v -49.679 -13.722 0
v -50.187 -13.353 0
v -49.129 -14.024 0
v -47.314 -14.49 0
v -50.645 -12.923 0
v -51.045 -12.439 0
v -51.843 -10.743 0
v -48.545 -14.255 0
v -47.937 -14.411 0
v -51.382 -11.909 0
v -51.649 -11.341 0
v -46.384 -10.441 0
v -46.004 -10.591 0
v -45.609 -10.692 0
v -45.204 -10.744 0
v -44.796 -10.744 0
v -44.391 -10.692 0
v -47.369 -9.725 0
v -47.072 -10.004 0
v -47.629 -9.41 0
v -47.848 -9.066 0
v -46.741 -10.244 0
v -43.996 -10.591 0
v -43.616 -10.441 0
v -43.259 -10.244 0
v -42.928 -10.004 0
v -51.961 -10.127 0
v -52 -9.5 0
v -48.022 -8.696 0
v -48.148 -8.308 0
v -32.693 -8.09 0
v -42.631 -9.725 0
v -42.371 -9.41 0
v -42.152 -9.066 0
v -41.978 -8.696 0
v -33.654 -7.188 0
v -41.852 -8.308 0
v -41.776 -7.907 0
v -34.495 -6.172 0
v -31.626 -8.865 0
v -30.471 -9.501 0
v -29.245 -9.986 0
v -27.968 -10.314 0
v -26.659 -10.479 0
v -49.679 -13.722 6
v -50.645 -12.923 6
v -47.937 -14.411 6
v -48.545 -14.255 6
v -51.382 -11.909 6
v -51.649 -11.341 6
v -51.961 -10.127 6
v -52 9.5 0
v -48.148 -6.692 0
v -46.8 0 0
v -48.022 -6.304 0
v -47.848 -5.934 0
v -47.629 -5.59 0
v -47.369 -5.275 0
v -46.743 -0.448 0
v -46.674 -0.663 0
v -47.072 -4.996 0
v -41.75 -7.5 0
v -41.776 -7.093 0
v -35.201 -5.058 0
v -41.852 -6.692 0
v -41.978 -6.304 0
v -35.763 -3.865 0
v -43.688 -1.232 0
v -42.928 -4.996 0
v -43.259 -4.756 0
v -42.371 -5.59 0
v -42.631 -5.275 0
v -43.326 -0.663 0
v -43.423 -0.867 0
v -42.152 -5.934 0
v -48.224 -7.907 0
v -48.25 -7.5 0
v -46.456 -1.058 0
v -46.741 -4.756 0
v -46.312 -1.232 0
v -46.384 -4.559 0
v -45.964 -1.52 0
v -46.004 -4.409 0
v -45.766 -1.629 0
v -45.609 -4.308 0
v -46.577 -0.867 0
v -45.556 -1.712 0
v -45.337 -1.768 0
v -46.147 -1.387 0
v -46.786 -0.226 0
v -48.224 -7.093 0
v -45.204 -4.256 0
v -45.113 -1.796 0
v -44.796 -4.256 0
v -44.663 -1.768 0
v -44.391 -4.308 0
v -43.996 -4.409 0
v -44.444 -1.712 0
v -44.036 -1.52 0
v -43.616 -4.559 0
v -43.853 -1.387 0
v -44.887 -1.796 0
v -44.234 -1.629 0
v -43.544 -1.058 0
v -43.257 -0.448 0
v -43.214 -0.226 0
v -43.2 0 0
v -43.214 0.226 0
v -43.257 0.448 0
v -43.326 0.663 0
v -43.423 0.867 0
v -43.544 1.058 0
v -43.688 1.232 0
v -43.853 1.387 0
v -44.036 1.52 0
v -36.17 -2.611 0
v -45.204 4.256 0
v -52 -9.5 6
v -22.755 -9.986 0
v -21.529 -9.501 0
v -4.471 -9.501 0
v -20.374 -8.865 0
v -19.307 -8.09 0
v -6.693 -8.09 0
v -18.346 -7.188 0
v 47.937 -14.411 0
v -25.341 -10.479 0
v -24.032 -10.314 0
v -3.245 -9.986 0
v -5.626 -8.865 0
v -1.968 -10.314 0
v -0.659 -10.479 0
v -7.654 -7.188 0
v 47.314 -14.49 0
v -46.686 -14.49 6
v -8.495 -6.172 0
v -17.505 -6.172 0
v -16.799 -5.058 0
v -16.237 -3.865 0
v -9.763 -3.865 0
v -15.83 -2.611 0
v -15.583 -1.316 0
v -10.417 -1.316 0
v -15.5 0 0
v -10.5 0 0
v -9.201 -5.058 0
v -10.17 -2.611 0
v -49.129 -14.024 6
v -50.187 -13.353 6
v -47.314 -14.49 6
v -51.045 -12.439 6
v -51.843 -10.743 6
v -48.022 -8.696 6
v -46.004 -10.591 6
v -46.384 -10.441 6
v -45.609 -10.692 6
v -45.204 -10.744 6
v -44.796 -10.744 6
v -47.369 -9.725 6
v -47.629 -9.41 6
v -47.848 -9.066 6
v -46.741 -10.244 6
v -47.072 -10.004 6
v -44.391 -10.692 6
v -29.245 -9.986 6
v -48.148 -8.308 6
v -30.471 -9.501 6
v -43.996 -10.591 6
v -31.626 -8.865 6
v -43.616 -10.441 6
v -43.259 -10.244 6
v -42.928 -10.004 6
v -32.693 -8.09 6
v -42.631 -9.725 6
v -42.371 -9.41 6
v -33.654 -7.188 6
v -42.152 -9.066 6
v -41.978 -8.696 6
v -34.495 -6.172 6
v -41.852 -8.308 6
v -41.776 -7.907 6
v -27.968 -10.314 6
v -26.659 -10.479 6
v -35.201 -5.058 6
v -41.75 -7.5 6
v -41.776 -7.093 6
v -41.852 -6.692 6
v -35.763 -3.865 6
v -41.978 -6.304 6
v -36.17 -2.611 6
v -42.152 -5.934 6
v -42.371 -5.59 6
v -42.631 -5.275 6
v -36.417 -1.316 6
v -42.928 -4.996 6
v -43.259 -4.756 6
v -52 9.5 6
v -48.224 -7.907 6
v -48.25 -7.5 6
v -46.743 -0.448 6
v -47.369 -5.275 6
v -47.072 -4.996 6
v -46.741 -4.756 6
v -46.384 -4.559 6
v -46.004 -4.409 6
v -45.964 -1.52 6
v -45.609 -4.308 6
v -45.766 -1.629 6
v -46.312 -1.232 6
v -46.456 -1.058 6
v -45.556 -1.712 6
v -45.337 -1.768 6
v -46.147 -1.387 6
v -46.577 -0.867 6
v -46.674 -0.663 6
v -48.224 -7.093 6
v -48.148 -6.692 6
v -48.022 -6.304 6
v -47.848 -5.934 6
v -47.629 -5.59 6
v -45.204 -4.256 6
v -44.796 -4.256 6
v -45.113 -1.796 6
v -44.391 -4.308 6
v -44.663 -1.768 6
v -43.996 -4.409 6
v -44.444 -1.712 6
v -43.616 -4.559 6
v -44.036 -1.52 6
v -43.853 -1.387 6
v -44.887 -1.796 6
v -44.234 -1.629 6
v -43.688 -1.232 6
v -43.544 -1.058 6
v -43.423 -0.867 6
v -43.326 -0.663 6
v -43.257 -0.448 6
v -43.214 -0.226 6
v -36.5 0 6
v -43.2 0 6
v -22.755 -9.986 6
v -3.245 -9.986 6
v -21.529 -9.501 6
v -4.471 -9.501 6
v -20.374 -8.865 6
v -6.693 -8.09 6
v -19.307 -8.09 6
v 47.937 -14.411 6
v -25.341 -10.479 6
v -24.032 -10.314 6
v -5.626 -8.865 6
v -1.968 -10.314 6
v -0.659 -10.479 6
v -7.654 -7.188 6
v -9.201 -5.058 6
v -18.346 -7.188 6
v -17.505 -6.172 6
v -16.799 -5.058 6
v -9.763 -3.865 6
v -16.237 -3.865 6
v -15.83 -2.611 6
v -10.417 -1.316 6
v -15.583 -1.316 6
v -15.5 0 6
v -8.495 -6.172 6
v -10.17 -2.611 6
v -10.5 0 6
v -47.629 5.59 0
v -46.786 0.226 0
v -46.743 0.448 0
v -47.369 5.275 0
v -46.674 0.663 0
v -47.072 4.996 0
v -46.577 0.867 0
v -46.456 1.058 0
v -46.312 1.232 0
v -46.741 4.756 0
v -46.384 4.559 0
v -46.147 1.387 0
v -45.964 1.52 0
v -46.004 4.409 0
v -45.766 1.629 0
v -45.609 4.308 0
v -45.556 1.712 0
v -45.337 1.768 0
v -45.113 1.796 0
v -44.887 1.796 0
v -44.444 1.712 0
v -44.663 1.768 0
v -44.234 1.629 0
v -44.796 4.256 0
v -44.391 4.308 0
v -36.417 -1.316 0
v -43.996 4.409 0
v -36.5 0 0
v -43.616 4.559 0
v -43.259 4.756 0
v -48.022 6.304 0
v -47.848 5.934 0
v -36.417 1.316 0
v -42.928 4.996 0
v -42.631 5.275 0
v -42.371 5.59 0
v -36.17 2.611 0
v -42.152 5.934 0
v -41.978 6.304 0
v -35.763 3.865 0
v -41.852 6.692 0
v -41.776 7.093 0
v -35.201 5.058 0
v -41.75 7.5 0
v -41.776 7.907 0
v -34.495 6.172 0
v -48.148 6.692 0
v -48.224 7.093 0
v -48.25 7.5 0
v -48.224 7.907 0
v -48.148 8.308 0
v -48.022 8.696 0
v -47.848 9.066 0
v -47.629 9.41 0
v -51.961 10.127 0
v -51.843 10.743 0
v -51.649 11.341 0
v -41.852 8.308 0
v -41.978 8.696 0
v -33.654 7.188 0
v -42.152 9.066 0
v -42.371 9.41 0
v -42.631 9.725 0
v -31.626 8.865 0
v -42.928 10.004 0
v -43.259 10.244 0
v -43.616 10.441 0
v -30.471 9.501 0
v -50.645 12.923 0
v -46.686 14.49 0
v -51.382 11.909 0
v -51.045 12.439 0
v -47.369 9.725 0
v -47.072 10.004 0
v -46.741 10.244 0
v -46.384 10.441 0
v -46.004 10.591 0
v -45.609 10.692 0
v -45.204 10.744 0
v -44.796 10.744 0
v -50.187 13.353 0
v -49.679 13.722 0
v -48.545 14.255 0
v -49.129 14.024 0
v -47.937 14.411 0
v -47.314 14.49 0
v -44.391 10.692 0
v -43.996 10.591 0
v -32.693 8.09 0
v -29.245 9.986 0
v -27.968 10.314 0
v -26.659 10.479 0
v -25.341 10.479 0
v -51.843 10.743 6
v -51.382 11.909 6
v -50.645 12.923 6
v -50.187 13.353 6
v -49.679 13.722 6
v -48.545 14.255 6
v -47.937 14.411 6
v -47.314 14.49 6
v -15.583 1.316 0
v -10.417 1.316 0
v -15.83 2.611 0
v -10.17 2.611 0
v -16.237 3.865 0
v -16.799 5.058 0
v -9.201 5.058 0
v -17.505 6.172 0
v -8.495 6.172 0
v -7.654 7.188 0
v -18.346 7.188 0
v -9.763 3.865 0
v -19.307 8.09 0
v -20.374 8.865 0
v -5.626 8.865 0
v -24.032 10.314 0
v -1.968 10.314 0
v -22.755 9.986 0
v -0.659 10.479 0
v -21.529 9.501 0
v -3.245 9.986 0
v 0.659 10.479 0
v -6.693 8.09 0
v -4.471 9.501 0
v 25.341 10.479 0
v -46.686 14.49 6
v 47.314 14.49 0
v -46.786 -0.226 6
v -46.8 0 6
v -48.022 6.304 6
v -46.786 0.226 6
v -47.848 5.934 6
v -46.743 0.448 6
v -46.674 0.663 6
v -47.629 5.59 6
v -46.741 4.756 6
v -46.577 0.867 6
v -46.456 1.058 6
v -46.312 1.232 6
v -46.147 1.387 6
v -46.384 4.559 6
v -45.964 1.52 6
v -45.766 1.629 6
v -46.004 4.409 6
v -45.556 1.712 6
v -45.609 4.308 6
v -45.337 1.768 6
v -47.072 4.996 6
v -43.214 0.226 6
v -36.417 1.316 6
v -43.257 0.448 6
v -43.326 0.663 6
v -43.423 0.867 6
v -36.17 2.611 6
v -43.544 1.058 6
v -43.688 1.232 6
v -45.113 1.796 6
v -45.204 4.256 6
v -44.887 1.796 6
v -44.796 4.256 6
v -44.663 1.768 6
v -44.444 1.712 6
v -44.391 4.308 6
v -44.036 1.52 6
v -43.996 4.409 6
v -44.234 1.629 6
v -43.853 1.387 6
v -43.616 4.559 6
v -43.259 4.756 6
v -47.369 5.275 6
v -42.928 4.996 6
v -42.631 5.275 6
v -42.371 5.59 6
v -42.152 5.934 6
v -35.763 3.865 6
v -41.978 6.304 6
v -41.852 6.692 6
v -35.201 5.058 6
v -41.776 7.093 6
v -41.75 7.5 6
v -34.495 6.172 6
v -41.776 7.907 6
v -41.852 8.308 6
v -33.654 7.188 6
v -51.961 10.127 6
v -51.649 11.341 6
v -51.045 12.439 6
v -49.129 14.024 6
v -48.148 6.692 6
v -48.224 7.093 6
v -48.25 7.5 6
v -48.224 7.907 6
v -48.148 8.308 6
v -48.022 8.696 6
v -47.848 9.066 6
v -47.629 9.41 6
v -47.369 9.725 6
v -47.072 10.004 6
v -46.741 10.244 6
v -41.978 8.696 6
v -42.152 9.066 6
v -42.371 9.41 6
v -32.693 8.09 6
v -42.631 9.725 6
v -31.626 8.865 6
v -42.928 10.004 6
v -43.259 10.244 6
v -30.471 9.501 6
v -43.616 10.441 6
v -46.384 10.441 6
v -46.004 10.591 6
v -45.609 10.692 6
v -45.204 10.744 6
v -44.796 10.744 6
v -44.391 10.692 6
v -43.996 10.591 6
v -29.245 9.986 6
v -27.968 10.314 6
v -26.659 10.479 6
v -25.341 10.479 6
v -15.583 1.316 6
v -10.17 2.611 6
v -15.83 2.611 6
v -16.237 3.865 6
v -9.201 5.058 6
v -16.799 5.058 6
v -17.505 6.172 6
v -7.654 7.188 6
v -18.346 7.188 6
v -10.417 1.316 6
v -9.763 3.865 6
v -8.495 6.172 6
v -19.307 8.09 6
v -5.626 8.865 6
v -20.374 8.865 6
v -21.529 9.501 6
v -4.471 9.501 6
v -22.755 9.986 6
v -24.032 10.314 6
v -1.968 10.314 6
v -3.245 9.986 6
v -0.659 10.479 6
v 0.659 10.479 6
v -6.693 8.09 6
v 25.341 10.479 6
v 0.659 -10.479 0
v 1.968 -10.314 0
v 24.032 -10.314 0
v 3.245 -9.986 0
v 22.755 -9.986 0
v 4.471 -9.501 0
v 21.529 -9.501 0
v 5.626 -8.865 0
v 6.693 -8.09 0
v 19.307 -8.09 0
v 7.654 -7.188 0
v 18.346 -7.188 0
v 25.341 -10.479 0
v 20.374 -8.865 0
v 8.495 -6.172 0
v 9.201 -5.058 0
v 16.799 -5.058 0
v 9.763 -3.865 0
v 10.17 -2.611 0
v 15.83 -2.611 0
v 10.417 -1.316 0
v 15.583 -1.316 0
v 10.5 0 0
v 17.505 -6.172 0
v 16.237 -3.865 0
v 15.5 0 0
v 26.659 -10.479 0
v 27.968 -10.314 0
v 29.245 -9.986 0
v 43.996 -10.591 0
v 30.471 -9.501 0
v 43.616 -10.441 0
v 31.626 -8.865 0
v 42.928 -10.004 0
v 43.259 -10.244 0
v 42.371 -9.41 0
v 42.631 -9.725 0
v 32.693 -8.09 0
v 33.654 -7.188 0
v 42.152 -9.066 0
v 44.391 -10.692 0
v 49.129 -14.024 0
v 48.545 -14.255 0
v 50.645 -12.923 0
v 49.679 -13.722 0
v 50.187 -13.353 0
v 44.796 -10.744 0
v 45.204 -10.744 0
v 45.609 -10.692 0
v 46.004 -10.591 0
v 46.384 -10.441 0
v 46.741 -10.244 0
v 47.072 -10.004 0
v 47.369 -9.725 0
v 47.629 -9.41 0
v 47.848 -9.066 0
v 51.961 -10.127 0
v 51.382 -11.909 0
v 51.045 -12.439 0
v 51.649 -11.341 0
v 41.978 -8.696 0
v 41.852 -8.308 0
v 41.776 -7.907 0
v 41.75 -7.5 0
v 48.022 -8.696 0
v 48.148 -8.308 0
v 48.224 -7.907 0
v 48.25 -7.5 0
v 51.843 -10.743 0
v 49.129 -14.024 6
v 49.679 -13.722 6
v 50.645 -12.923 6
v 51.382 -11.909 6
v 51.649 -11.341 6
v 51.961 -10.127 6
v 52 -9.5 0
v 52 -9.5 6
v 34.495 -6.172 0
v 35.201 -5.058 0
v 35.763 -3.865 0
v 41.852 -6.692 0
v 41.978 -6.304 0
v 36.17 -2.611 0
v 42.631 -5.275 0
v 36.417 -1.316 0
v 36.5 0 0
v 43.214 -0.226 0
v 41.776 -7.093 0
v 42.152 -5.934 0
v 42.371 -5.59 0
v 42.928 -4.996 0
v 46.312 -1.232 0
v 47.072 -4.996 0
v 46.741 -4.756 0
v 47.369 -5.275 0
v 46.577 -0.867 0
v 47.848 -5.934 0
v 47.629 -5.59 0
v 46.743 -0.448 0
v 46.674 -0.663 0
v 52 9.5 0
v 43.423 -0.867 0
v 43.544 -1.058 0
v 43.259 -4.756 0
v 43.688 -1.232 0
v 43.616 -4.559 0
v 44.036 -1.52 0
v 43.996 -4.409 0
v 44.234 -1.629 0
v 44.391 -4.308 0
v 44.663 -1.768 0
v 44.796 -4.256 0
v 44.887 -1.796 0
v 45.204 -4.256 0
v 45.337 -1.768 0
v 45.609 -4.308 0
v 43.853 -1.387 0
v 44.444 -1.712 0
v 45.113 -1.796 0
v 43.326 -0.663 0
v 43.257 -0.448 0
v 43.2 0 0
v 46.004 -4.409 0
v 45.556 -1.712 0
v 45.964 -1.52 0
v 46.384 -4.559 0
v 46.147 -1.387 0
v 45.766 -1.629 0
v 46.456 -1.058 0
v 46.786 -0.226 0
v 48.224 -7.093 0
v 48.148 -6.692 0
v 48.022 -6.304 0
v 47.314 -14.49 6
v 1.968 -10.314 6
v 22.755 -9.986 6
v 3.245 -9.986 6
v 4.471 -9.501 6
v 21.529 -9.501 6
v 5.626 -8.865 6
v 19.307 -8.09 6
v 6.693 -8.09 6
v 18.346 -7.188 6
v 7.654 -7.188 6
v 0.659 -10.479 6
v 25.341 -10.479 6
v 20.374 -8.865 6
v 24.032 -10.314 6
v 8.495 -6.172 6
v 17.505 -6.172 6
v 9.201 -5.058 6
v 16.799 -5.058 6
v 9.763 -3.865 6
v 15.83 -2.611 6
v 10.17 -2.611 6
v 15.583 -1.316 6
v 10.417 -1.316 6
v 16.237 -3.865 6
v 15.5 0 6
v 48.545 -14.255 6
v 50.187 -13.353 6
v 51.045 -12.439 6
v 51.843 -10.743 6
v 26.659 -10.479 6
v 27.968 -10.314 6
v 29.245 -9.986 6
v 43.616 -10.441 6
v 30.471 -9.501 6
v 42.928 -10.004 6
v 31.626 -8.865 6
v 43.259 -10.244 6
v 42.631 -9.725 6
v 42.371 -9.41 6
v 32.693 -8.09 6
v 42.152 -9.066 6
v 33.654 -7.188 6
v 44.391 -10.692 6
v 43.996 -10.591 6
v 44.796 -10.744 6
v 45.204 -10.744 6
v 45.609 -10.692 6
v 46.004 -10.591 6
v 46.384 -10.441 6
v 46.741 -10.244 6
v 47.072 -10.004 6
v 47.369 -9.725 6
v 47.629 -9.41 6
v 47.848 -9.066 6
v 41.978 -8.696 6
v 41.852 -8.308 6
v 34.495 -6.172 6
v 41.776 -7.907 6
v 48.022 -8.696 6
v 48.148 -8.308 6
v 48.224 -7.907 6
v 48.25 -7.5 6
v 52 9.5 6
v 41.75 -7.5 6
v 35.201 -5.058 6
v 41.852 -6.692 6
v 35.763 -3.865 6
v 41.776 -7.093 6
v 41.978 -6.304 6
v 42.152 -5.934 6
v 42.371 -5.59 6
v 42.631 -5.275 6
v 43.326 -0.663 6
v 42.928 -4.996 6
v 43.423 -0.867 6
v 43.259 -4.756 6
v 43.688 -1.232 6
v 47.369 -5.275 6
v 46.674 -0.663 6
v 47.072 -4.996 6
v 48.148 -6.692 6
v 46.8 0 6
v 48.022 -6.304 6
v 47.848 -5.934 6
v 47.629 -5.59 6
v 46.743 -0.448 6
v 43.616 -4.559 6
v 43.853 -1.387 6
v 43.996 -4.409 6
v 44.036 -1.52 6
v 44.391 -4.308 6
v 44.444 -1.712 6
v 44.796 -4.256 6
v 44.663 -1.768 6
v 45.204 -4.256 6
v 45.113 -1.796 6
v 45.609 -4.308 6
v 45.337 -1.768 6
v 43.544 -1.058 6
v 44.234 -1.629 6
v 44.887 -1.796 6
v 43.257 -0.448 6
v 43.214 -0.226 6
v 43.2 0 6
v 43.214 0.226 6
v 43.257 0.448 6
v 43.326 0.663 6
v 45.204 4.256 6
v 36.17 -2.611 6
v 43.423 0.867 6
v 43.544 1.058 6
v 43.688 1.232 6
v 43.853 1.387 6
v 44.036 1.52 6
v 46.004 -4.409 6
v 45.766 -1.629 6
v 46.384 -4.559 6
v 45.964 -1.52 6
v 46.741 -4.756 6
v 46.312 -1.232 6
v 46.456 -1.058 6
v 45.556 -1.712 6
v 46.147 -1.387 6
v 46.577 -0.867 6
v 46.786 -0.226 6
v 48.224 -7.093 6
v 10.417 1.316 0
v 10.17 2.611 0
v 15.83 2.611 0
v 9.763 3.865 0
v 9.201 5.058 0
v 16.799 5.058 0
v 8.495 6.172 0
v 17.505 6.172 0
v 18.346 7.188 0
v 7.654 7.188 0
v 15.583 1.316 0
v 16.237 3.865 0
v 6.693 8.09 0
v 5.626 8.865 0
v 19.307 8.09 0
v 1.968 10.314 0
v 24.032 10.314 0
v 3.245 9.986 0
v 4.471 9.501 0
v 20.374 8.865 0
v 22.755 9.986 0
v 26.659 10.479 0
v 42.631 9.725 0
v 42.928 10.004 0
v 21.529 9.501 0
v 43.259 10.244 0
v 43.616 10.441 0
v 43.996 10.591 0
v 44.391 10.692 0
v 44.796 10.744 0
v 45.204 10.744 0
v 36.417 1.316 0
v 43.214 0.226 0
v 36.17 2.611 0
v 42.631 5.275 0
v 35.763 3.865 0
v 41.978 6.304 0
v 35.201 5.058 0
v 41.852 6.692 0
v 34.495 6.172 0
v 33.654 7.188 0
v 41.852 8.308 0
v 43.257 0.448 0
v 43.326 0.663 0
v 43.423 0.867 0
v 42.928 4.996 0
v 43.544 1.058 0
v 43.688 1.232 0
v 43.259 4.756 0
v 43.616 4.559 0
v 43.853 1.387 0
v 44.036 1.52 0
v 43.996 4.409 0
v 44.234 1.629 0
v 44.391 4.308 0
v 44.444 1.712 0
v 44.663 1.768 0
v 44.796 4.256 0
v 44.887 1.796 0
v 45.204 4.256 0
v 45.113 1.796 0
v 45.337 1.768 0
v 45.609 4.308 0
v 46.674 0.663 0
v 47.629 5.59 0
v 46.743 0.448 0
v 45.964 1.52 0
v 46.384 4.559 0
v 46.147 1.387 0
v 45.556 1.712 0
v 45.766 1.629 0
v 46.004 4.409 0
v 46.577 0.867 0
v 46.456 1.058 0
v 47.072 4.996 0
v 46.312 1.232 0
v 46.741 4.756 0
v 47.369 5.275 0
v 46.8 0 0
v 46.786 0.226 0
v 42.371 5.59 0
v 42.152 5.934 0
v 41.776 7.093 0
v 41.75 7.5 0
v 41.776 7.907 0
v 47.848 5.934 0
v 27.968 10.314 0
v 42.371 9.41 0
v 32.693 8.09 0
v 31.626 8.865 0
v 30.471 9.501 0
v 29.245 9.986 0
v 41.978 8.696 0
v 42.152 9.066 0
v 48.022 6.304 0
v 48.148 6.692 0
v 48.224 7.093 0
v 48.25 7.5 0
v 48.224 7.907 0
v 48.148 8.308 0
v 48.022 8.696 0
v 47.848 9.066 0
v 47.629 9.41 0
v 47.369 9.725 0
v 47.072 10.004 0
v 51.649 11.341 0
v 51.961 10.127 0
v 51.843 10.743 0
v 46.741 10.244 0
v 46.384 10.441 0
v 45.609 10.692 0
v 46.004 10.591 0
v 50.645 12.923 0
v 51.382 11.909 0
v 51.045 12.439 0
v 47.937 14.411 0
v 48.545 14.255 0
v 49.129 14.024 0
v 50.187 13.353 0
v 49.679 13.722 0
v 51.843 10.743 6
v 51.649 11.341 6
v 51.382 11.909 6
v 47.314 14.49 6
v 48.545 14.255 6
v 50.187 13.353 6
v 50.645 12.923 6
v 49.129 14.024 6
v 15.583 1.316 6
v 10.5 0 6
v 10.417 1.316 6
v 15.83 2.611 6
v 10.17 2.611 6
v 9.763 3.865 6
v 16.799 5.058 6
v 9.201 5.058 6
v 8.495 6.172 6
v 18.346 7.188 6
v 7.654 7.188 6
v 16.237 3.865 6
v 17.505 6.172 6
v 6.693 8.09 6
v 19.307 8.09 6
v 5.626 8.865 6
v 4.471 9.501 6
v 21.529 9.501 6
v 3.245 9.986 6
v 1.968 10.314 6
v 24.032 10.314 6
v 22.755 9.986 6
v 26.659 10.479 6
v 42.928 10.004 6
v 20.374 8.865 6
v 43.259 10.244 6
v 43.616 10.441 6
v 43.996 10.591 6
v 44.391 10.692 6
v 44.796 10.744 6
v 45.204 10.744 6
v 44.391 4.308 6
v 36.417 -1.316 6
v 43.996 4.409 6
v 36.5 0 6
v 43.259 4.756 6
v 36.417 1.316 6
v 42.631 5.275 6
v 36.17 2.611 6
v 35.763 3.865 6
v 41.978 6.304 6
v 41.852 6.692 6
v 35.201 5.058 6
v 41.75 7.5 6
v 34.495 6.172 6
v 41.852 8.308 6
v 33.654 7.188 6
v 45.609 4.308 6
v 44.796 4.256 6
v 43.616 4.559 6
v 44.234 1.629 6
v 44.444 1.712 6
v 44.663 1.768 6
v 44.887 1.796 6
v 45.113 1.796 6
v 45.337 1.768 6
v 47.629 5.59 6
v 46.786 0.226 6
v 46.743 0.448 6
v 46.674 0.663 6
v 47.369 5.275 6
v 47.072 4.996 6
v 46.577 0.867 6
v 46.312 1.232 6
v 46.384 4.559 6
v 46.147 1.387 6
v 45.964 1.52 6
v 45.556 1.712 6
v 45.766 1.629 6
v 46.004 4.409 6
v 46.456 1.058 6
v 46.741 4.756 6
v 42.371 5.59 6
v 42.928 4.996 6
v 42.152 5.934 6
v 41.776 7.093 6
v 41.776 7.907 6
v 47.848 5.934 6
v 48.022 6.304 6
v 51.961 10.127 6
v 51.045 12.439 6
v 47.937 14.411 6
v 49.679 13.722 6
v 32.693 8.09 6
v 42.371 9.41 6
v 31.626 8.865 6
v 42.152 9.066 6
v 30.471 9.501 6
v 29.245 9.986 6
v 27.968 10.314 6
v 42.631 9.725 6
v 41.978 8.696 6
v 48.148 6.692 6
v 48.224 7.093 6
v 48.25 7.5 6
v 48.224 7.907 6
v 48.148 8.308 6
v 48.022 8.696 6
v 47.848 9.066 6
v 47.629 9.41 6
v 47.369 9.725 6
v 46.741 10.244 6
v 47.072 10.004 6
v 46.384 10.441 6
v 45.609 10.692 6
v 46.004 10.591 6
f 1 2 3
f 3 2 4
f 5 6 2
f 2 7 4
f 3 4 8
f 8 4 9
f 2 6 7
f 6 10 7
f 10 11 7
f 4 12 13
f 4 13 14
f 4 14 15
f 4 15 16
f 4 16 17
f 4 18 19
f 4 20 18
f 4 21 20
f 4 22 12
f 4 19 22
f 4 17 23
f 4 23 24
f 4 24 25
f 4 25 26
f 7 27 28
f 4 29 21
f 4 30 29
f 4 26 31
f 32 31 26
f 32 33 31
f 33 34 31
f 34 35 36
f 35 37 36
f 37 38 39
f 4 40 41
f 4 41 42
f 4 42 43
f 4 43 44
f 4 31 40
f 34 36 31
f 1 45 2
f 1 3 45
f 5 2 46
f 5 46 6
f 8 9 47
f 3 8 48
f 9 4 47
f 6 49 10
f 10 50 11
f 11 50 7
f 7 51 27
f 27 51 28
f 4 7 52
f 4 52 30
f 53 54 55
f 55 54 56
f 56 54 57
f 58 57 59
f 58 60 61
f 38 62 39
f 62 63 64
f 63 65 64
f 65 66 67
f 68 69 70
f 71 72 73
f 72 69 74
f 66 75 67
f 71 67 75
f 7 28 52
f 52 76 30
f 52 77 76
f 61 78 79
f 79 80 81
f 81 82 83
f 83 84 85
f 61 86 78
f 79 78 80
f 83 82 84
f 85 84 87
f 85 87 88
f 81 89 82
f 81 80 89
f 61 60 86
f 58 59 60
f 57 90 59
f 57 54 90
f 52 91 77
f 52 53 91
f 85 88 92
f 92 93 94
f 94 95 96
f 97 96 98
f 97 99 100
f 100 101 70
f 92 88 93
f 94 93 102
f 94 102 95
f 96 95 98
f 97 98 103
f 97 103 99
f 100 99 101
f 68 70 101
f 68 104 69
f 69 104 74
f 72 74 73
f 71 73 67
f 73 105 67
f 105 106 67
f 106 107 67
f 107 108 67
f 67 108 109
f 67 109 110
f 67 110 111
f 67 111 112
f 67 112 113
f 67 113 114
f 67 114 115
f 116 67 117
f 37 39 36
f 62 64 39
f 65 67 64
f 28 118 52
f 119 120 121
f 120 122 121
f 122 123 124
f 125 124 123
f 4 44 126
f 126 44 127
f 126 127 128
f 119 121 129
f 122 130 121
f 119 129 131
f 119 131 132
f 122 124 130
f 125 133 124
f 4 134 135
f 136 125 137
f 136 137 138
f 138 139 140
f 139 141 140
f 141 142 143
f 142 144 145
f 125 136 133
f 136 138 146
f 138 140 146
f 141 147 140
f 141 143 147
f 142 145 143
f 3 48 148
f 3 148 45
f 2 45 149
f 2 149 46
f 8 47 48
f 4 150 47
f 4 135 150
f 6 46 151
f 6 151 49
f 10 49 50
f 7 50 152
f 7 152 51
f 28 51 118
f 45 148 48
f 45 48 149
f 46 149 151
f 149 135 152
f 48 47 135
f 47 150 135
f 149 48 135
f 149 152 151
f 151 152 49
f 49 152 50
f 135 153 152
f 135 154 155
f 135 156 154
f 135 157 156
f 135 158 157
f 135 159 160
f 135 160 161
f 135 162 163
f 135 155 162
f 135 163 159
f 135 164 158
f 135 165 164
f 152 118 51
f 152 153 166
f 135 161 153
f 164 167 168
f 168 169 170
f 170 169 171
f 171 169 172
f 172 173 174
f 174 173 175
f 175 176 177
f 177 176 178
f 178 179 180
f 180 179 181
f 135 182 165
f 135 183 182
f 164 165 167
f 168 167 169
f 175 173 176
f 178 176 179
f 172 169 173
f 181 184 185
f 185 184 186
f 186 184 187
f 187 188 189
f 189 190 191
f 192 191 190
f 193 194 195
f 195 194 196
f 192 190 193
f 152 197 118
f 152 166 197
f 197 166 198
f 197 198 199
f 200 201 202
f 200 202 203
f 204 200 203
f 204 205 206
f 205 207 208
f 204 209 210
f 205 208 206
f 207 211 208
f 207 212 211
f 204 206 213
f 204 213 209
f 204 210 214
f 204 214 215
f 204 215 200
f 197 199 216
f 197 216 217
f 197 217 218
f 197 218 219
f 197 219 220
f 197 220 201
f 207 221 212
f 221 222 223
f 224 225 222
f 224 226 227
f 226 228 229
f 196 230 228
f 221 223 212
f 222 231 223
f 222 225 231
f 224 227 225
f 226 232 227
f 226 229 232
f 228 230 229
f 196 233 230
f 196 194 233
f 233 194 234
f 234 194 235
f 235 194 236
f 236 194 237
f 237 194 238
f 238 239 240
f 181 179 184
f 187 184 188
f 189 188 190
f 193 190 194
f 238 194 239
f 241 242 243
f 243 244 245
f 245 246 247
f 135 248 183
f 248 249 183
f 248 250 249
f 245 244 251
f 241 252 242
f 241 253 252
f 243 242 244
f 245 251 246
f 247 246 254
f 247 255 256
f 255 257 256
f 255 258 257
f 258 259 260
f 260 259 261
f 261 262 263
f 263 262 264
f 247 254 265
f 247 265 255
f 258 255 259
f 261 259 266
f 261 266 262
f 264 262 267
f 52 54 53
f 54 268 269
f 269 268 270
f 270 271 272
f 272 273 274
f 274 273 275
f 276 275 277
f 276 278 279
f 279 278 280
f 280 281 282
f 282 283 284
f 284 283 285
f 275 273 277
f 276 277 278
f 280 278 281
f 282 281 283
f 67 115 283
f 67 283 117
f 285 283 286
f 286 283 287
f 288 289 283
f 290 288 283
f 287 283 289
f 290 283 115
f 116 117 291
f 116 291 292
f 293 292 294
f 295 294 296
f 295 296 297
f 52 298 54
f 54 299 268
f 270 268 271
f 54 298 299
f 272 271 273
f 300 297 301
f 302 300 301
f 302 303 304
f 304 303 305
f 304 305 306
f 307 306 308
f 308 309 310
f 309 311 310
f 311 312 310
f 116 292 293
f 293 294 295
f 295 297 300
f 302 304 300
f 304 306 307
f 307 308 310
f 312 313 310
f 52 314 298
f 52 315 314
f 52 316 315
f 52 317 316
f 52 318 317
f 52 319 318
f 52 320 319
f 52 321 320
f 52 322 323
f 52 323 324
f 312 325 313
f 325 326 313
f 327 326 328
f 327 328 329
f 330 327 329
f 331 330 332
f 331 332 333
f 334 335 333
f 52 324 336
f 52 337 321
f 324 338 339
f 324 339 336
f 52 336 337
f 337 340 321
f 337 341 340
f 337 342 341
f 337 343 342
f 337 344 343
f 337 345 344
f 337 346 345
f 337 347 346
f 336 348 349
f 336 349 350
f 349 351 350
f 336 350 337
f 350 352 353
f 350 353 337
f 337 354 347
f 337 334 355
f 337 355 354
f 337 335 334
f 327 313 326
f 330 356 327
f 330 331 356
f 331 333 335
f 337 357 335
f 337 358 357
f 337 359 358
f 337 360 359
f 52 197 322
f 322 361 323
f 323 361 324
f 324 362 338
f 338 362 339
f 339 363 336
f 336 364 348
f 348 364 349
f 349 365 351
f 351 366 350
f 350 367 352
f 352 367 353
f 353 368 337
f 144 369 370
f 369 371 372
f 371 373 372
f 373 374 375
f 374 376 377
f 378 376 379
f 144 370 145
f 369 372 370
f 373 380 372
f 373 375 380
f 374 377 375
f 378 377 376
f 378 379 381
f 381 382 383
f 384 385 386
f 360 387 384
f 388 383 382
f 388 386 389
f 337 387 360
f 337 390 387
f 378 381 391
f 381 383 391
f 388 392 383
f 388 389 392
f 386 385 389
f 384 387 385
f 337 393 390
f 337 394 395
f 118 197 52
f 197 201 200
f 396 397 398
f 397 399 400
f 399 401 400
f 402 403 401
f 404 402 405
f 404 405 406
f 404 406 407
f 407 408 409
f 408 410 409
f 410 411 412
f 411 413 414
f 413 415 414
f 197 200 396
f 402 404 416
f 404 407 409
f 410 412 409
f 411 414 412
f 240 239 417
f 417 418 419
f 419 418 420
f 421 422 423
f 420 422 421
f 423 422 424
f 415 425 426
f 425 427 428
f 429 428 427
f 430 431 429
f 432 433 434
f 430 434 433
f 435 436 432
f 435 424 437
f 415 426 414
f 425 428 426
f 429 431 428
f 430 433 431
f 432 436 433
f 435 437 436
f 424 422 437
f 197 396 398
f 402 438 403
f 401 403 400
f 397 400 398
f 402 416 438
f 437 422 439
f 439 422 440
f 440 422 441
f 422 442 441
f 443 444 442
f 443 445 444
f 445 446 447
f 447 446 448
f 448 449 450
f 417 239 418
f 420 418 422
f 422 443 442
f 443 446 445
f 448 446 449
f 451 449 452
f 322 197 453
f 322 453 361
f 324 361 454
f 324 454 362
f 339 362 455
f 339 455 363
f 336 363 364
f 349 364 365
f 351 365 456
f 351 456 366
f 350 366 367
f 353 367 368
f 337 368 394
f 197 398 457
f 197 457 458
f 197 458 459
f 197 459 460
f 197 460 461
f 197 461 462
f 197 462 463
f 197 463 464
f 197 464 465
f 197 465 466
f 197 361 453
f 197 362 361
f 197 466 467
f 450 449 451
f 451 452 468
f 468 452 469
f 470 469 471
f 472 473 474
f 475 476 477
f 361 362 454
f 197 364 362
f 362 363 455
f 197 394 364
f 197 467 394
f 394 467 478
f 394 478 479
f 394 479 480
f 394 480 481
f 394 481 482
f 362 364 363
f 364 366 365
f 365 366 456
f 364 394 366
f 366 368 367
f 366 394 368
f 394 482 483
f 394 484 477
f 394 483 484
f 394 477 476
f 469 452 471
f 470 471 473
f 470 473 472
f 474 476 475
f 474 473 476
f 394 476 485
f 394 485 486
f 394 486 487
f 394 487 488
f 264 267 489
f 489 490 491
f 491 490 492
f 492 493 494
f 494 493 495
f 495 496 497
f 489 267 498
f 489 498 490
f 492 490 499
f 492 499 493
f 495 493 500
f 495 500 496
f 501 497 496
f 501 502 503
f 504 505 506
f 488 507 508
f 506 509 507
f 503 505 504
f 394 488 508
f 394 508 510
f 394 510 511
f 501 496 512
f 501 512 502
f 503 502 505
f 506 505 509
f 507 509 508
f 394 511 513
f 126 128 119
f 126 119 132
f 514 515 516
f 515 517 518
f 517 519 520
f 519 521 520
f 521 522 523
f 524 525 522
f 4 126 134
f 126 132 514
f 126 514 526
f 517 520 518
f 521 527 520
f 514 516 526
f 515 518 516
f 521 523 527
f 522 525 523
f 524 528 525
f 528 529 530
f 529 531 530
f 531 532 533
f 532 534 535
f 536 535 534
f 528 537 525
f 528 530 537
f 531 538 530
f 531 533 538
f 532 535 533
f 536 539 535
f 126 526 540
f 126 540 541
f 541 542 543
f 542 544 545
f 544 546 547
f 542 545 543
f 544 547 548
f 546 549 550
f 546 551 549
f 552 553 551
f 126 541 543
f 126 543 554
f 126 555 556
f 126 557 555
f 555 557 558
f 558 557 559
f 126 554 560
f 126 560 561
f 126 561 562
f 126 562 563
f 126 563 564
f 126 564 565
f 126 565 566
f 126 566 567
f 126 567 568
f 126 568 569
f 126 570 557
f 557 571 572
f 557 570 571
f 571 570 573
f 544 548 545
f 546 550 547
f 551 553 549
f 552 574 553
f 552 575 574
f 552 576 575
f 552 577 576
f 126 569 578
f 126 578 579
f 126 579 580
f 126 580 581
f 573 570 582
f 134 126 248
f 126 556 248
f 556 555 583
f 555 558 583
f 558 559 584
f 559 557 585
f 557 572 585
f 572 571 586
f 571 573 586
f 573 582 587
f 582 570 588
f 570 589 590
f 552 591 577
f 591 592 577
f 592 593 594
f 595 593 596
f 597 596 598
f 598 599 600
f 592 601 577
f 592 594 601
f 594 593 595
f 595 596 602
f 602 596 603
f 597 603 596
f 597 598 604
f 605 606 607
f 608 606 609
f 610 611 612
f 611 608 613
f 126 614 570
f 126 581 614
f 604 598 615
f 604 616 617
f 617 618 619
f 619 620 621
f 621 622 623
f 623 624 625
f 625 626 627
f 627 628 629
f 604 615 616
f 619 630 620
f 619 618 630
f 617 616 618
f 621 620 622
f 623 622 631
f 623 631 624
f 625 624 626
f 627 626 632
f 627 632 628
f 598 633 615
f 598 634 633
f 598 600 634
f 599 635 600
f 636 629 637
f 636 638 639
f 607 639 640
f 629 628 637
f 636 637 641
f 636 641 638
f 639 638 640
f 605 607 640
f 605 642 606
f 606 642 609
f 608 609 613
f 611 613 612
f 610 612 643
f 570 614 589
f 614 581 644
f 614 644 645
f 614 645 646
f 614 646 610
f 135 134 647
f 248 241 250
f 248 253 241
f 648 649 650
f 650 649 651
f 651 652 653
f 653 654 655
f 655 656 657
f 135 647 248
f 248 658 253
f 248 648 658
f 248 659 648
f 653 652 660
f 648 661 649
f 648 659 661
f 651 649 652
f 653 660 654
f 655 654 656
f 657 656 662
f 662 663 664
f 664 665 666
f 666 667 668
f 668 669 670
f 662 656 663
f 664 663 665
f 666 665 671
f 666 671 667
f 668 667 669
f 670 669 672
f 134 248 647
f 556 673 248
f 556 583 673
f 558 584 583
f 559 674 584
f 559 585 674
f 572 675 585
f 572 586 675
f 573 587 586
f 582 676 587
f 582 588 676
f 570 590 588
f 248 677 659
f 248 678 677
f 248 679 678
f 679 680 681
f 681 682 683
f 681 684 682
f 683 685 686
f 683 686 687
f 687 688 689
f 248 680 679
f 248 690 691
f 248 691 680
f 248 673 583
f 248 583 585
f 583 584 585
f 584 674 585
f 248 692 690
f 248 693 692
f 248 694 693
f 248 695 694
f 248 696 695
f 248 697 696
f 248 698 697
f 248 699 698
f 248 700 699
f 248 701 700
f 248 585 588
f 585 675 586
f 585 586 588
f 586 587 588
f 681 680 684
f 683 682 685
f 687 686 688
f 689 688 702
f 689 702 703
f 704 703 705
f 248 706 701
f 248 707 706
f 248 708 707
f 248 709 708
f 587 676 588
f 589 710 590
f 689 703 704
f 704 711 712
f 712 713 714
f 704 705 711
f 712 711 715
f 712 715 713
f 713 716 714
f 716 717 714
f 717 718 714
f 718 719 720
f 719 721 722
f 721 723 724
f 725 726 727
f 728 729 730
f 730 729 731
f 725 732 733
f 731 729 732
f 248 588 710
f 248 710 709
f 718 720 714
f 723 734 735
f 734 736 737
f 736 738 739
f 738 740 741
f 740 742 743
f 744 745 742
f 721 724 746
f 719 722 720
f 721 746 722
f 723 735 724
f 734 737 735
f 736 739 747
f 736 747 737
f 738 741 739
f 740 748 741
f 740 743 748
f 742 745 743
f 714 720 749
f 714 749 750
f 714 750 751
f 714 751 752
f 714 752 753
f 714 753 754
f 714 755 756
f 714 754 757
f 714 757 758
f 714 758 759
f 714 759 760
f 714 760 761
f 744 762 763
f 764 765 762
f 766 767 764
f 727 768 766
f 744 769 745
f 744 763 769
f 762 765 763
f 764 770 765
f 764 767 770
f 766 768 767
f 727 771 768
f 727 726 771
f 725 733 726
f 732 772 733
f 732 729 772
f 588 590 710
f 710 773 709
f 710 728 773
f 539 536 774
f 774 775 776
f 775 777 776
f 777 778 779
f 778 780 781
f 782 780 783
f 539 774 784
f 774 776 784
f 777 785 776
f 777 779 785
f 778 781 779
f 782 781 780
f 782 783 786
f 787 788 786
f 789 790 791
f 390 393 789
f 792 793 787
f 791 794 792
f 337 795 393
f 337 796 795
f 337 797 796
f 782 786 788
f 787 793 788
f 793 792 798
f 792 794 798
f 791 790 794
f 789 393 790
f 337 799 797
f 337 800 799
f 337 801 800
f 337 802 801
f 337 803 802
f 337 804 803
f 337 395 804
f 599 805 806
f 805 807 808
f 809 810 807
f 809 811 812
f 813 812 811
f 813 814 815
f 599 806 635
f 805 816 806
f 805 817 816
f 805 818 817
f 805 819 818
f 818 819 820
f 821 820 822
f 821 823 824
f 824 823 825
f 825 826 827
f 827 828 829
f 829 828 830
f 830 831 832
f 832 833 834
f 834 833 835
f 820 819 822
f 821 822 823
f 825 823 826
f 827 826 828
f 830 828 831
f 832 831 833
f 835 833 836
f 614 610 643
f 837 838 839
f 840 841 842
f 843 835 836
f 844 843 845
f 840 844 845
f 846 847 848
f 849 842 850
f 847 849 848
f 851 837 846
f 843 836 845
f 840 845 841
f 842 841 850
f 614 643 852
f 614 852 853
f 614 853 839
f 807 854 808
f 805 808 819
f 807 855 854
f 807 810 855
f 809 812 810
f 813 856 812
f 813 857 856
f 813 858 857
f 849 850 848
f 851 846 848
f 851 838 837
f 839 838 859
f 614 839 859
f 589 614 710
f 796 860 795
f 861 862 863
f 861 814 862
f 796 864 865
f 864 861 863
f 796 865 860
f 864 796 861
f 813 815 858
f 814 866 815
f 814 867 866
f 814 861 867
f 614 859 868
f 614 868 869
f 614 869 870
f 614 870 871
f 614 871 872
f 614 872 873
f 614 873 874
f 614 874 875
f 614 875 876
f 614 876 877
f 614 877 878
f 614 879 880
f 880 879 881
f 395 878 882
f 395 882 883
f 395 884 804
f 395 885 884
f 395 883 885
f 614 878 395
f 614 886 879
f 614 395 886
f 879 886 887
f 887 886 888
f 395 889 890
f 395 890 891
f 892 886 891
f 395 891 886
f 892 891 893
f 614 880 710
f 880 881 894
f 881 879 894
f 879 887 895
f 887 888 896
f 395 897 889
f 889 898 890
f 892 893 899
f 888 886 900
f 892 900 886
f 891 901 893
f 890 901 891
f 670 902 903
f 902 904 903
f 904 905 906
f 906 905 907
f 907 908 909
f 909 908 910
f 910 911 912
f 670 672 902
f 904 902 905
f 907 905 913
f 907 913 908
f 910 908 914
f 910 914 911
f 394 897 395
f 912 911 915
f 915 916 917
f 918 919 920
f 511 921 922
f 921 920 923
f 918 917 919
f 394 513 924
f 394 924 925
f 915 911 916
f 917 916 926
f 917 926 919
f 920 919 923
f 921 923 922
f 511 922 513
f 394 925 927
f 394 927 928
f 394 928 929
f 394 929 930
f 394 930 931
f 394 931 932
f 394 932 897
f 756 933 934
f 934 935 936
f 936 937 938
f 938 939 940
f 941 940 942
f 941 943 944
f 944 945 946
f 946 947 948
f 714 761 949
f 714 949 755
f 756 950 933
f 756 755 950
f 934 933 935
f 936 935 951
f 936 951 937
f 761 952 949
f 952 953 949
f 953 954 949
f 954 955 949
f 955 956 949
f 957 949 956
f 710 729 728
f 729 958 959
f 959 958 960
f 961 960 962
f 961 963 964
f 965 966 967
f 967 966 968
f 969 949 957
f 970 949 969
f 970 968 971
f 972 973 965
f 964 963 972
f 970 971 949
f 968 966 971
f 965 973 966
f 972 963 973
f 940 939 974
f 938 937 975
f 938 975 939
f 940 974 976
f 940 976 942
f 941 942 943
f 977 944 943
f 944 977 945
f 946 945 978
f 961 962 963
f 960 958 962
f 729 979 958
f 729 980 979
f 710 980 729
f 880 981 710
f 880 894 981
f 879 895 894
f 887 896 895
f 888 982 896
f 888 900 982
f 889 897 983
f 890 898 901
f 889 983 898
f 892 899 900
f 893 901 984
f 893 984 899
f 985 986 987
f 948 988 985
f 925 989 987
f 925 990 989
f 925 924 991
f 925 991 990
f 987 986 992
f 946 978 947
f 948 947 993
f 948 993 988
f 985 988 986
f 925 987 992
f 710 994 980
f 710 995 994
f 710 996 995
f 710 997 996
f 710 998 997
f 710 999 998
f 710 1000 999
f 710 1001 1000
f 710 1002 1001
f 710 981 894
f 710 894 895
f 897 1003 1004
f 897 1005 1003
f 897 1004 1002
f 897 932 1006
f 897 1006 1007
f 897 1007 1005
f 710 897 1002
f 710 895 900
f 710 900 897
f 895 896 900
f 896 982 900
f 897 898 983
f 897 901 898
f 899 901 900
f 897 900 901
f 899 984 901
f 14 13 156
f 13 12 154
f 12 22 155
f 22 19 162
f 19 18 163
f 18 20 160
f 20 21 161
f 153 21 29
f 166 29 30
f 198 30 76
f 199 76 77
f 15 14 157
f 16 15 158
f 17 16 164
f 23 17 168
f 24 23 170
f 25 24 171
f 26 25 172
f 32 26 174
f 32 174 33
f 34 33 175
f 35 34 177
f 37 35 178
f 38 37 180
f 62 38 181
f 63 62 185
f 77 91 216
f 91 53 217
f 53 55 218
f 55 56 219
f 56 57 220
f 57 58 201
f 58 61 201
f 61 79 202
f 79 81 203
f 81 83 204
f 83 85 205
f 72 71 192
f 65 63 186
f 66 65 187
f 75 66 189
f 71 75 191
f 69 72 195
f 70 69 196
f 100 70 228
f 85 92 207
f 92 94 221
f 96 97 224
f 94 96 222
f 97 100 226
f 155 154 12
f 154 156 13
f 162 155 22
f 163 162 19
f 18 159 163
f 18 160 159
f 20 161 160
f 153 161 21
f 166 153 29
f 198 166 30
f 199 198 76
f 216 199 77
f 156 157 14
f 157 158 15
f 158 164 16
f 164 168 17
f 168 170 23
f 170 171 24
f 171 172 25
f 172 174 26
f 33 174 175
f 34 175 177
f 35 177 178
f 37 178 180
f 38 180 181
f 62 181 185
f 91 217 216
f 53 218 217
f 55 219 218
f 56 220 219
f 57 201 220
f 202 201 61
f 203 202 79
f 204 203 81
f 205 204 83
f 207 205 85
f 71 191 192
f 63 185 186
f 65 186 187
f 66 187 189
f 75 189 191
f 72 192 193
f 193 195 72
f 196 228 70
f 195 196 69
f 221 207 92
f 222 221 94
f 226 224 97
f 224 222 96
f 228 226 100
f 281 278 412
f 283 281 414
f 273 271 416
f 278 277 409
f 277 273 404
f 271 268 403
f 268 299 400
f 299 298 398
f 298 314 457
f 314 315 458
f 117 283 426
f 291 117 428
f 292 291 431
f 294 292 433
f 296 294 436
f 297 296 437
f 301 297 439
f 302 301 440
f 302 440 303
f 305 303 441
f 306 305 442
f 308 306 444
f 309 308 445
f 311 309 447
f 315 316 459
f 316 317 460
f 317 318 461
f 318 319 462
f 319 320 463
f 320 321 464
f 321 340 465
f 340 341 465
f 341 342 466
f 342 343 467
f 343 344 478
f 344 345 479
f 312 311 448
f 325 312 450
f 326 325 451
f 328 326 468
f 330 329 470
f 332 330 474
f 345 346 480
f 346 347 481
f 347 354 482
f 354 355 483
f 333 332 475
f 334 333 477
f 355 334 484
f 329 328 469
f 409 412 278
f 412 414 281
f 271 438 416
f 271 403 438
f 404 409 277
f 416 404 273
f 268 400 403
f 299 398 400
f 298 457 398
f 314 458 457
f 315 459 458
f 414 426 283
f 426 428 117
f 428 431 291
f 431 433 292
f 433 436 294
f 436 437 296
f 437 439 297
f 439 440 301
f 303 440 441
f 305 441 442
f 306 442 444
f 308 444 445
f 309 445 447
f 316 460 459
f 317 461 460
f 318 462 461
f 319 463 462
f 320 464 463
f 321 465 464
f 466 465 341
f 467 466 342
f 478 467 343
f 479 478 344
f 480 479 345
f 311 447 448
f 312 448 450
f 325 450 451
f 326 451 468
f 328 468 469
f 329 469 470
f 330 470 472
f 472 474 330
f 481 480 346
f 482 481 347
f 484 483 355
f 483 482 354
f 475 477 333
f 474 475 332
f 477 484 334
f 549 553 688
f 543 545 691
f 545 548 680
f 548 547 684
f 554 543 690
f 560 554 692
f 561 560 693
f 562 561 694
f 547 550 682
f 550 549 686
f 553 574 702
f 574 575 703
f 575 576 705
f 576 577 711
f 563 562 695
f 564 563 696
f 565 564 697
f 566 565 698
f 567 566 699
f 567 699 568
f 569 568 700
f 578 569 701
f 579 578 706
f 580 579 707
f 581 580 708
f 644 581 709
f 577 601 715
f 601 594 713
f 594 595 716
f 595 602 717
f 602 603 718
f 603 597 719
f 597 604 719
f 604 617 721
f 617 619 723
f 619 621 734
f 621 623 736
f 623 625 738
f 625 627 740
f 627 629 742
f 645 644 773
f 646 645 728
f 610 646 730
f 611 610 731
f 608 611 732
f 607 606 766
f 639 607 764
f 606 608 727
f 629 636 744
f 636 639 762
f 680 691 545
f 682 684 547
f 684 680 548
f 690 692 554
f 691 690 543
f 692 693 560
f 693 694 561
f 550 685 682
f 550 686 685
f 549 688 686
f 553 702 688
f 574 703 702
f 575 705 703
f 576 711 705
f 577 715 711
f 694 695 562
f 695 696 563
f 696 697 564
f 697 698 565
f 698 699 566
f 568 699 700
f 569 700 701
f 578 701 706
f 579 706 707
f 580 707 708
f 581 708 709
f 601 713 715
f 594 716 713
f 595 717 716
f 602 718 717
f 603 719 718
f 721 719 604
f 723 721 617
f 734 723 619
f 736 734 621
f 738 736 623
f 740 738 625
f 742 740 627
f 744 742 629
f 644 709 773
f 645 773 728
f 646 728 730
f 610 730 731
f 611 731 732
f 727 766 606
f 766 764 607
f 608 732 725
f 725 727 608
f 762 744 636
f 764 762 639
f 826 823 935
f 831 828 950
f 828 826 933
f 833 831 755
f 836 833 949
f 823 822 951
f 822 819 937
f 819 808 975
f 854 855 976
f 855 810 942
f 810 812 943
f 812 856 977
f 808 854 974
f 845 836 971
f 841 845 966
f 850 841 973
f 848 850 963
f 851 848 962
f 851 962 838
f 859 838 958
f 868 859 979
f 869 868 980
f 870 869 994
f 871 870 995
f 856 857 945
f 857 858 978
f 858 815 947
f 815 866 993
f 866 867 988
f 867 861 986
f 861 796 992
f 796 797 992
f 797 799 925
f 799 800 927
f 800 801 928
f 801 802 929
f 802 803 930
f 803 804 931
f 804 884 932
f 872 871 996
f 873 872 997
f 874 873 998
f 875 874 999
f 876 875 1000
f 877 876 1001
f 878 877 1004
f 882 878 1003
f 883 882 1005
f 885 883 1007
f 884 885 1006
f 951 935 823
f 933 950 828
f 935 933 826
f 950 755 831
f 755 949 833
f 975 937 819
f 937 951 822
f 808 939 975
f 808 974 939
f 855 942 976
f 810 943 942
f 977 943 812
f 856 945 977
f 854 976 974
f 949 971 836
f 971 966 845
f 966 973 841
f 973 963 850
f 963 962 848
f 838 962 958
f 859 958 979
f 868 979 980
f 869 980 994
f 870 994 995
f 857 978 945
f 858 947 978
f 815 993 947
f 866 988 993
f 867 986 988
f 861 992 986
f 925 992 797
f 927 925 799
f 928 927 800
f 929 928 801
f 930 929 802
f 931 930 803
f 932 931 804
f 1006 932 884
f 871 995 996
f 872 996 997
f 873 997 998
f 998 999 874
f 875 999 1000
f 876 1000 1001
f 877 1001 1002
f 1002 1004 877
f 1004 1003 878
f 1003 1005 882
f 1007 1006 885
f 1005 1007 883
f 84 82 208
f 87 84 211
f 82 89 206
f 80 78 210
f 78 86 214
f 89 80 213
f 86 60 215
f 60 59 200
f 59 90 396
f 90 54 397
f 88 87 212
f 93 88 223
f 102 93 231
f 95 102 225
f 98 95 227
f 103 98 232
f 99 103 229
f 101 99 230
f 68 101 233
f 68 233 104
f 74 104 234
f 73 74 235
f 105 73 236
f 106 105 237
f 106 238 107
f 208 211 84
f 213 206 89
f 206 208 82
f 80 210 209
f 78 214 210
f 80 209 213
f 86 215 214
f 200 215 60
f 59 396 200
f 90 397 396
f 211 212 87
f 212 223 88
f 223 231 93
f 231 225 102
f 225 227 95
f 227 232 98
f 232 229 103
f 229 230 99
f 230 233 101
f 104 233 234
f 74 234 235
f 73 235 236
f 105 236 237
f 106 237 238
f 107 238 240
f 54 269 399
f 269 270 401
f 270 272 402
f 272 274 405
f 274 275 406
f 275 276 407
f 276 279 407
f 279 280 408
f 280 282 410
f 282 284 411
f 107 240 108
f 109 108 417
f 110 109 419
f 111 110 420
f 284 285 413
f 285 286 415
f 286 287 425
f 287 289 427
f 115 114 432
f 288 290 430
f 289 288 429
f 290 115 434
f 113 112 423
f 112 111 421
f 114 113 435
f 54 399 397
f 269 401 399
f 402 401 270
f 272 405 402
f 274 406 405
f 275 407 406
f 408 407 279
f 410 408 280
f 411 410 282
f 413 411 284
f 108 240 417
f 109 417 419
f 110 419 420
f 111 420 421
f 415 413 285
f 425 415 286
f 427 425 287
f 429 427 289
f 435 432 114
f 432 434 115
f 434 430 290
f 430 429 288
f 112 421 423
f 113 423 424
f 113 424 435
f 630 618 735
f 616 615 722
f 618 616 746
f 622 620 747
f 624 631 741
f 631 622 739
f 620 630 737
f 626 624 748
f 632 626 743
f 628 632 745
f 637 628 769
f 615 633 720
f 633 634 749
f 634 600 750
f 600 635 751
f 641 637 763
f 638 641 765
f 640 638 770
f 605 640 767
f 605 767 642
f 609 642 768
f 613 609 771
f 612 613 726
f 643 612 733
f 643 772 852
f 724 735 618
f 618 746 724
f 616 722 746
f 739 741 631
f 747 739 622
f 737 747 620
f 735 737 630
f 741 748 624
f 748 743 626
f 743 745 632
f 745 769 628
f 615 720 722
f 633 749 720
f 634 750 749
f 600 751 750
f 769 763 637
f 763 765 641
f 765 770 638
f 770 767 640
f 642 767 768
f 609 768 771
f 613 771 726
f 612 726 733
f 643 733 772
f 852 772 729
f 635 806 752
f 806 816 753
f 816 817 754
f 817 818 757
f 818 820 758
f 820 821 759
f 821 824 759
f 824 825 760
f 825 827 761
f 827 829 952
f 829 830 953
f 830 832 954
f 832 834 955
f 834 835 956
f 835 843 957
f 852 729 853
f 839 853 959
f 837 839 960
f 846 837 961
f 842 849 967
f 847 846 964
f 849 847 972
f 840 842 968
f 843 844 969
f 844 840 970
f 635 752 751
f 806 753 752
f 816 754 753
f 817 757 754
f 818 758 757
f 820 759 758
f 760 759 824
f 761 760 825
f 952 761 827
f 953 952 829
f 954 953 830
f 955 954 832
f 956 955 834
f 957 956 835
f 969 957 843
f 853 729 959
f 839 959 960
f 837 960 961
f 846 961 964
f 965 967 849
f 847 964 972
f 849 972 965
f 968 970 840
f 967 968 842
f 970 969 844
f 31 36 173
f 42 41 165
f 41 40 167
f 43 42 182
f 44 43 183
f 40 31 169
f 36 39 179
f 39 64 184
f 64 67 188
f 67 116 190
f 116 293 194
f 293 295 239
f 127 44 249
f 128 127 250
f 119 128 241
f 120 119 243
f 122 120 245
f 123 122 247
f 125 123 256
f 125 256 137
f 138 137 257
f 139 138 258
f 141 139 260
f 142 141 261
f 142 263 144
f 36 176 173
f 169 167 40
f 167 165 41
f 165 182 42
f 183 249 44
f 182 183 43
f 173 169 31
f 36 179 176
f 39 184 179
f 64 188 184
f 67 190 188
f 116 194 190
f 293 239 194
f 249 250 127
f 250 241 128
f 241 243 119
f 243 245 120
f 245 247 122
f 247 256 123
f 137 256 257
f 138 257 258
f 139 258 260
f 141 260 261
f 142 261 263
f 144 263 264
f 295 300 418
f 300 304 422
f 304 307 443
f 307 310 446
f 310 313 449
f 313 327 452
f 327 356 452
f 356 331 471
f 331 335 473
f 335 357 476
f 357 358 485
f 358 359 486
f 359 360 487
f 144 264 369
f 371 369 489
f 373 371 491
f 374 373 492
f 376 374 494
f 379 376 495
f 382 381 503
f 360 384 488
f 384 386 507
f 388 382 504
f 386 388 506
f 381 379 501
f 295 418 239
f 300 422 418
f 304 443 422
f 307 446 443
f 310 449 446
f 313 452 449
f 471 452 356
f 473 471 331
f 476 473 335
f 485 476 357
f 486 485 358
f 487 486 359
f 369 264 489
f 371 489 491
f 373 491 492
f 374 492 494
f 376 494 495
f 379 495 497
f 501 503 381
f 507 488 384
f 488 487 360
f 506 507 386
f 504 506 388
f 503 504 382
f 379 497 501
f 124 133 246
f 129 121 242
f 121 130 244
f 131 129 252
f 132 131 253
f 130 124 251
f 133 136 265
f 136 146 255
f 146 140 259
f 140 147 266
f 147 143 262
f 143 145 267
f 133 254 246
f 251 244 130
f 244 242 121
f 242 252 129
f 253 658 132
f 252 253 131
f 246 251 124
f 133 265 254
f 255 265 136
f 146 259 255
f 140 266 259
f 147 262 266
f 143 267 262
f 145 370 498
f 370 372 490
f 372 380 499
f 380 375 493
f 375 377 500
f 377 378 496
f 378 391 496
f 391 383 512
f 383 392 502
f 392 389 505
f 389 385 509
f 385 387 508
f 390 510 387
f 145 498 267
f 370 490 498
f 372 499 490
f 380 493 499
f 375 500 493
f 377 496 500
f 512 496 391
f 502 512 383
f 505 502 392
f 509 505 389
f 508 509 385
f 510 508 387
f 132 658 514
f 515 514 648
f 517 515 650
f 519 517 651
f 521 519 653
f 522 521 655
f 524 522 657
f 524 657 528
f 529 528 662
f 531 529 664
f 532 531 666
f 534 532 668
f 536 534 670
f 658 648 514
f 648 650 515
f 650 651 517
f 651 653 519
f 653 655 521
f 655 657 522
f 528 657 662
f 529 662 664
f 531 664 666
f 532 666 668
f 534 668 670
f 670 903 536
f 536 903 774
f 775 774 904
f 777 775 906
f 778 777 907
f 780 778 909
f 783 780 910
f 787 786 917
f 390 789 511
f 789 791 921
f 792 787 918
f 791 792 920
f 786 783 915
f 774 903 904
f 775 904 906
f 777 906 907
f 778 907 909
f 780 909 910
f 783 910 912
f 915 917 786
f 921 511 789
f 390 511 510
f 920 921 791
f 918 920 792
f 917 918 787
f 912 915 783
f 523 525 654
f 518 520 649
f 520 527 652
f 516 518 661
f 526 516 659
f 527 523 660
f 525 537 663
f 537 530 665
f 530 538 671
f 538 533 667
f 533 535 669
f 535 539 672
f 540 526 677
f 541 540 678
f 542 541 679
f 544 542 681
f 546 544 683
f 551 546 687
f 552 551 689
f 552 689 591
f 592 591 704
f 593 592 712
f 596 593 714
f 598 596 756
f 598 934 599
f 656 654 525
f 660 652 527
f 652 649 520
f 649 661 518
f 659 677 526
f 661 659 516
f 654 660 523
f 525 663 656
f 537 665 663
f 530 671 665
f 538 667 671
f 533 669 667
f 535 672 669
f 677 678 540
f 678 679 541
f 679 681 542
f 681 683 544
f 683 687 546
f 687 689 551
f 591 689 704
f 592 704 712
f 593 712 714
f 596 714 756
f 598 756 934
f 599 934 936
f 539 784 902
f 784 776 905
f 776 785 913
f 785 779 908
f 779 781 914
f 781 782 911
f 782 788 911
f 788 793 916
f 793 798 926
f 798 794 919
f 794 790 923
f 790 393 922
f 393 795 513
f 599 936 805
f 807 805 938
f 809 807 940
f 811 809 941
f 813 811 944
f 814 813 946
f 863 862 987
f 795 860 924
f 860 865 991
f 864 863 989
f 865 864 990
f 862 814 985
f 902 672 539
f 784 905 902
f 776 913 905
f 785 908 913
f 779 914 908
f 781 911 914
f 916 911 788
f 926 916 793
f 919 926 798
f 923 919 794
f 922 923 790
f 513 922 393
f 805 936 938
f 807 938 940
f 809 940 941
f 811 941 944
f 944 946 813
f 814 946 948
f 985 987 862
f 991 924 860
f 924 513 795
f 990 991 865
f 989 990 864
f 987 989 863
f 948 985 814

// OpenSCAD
$fn = 50;

difference() {
	union() {
		hull() {
			translate(v = [-47.0, 9.5, 0]) {
				cylinder(h = 6, r = 5);
			}
			translate(v = [47.0, 9.5, 0]) {
				cylinder(h = 6, r = 5);
			}
			translate(v = [-47.0, -9.5, 0]) {
				cylinder(h = 6, r = 5);
			}
			translate(v = [47.0, -9.5, 0]) {
				cylinder(h = 6, r = 5);
			}
		}
	}
	union() {
		translate(v = [-45.0, -7.5, 0]) {
			cylinder(h = 6, r = 3.25);
		}
		translate(v = [-45.0, 7.5, 0]) {
			cylinder(h = 6, r = 3.25);
		}
		translate(v = [45.0, -7.5, 0]) {
			cylinder(h = 6, r = 3.25);
		}
		translate(v = [45.0, 7.5, 0]) {
			cylinder(h = 6, r = 3.25);
		}
		translate(v = [-45.0, 0.0, 0]) {
			cylinder(h = 6, r = 1.8);
		}
		translate(v = [45.0, 0.0, 0]) {
			cylinder(h = 6, r = 1.8);
		}
		translate(v = [-26.0, 0, 0.0]) {
			cylinder(h = 6, r = 10.5);
		}
		cylinder(h = 6, r = 10.5);
		translate(v = [26.0, 0, 0.0]) {
			cylinder(h = 6, r = 10.5);
		}
	}
}
